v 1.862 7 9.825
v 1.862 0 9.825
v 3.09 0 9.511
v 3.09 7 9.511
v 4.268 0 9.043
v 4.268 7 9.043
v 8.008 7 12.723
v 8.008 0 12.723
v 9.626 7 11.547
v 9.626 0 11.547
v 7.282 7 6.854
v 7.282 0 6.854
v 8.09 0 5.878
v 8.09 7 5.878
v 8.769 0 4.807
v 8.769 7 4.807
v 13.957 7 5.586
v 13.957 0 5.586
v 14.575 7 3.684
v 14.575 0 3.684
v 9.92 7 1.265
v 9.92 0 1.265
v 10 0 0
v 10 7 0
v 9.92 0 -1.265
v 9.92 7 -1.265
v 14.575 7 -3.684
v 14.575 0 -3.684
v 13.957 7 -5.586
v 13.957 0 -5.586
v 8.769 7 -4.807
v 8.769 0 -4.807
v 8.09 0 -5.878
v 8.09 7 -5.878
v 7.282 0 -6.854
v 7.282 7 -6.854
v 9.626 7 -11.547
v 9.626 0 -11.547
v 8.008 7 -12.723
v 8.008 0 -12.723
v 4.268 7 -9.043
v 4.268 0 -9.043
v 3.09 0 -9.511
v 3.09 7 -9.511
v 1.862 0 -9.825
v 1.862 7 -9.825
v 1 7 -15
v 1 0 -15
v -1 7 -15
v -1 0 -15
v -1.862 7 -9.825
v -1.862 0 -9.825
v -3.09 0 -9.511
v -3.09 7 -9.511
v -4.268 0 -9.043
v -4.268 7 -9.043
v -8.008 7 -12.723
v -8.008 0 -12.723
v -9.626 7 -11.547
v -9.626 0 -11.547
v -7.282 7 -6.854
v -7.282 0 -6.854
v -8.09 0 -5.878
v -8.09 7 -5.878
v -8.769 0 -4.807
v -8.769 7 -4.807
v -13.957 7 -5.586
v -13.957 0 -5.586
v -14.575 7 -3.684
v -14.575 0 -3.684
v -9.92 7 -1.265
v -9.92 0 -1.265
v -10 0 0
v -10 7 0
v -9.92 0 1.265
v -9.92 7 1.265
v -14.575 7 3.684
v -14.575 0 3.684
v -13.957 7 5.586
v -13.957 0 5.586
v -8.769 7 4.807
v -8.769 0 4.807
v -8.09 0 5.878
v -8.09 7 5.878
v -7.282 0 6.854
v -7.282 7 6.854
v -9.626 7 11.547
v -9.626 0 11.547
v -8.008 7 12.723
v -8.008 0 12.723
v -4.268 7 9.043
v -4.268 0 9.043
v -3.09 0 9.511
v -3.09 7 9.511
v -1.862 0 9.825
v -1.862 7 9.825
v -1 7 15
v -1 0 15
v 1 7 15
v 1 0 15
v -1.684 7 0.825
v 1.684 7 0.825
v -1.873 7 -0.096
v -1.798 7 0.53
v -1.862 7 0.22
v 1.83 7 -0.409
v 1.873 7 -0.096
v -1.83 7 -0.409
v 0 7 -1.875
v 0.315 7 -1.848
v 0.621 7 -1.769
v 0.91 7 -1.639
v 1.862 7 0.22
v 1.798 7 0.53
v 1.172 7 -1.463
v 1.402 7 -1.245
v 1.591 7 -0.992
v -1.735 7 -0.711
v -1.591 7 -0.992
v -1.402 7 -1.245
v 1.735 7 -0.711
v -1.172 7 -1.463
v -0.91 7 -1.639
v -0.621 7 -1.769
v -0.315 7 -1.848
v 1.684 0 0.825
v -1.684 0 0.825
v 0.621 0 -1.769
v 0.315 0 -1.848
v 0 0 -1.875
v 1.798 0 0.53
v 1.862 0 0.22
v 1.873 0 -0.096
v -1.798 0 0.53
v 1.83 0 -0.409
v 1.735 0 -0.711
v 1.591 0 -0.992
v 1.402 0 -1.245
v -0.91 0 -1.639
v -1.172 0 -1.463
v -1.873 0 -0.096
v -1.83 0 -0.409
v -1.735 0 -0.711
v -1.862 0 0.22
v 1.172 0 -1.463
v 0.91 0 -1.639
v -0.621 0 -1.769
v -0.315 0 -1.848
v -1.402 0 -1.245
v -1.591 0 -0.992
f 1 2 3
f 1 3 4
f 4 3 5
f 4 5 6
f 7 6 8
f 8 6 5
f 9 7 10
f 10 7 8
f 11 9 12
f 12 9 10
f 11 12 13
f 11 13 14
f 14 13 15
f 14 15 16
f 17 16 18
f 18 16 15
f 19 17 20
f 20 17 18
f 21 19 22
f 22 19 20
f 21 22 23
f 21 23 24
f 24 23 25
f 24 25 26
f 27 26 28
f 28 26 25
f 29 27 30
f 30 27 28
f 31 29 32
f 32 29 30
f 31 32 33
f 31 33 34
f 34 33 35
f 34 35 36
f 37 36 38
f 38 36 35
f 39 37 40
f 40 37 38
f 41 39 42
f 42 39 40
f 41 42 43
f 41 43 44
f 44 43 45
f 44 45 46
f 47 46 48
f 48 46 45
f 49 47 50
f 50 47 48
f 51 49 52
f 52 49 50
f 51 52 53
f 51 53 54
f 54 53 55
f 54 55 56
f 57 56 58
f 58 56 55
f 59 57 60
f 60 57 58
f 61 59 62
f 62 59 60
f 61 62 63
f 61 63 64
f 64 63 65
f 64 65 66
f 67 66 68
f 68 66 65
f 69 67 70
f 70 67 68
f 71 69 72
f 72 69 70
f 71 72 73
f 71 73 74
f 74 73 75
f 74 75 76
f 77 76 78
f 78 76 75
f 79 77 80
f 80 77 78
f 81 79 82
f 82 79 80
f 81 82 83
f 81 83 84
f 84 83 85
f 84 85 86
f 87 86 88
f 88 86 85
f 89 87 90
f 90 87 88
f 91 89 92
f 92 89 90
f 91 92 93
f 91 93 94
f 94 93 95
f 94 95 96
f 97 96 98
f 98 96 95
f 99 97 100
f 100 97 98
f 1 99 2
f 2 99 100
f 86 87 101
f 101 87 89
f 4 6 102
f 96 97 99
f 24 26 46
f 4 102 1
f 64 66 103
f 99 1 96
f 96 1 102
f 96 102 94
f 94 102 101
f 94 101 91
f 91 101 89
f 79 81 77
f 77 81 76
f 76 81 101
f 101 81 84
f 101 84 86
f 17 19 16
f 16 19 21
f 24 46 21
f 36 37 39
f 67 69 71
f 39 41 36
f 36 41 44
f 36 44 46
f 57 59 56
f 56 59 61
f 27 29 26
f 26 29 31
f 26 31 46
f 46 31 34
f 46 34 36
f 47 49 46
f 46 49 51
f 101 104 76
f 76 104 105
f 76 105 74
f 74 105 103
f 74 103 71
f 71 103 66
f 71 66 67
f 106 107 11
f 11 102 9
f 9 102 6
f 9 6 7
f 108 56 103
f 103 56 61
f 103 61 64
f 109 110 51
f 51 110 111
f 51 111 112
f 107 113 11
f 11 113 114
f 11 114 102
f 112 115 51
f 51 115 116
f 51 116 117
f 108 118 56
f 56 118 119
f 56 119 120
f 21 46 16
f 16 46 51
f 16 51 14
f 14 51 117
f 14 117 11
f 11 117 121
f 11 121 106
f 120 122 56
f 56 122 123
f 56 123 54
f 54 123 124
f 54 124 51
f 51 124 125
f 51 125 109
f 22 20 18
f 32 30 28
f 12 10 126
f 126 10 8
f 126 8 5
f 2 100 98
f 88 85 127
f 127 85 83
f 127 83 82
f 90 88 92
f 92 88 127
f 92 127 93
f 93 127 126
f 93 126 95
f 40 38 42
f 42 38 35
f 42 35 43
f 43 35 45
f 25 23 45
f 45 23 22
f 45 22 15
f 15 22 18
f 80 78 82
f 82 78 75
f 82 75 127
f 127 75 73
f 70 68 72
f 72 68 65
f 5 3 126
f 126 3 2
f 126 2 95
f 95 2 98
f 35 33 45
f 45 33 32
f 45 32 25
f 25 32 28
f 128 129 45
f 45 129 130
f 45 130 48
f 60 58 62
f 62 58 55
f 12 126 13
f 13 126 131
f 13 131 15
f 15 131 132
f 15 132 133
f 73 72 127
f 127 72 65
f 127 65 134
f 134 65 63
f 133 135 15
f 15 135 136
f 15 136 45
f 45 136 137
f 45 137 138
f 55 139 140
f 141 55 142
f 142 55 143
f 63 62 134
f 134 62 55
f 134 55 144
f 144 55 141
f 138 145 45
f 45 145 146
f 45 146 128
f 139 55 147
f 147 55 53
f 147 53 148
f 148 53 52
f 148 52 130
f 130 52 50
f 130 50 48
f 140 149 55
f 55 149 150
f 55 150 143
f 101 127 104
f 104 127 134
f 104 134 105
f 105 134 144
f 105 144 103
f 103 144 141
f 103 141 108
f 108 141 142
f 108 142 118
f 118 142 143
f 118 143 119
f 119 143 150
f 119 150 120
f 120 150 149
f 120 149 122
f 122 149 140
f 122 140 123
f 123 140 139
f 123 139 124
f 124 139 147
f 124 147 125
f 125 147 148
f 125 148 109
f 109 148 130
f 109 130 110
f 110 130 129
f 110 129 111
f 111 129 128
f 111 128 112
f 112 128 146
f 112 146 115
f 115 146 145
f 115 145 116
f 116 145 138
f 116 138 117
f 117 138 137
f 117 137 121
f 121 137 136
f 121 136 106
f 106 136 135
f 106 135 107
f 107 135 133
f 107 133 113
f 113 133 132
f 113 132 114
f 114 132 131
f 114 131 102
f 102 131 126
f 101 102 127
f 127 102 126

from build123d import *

# Parameters (mm, degrees)
BOSS_EXTRUDE2_DEPTH = 7
CUT_EXTRUDE1_DEPTH  = 7


with BuildPart() as part:
    # Sketch1 → Boss-Extrude2 (new body)
    with BuildSketch(Plane(origin=(0, 0, 0), x_dir=(1, 0, 0), z_dir=(0, 1, 0))):
        with BuildLine():
            Line((-2, 9), (-1.862495894, 9.825024633))
            ThreePointArc((-1.862495894, 9.825024633), (-3.090169944, 9.510565163), (-4.268213752, 9.043359518))
            Line((-4.268213752, 9.043359518), (-3.672033282, 8.456723454))
            Line((-3.672033282, 8.456723454), (-6.908101259, 6.105582445))
            Line((-6.908101259, 6.105582445), (-7.281795413, 6.853864279))
            ThreePointArc((-7.281795413, 6.853864279), (-8.090169944, 5.877852523), (-8.768610817, 4.807438439))
            Line((-8.768610817, 4.807438439), (-7.941474658, 4.683265982))
            Line((-7.941474658, 4.683265982), (-9.177542635, 0.879039917))
            Line((-9.177542635, 0.879039917), (-9.919696584, 1.264760725))
            ThreePointArc((-9.919696584, 1.264760725), (-10, 0), (-9.919696584, -1.264760725))
            Line((-9.919696584, -1.264760725), (-9.177542635, -0.879039917))
            Line((-9.177542635, -0.879039917), (-7.941474658, -4.683265982))
            Line((-7.941474658, -4.683265982), (-8.768610817, -4.807438439))
            ThreePointArc((-8.768610817, -4.807438439), (-8.090169944, -5.877852523), (-7.281795413, -6.853864279))
            Line((-7.281795413, -6.853864279), (-6.908101259, -6.105582445))
            Line((-6.908101259, -6.105582445), (-3.672033282, -8.456723454))
            Line((-3.672033282, -8.456723454), (-4.268213752, -9.043359518))
            ThreePointArc((-4.268213752, -9.043359518), (-3.090169944, -9.510565163), (-1.862495894, -9.825024633))
            Line((-1.862495894, -9.825024633), (-2, -9))
            Line((-2, -9), (2, -9))
            Line((2, -9), (1.862495894, -9.825024633))
            ThreePointArc((1.862495894, -9.825024633), (3.090169944, -9.510565163), (4.268213752, -9.043359518))
            Line((4.268213752, -9.043359518), (3.672033282, -8.456723454))
            Line((3.672033282, -8.456723454), (6.908101259, -6.105582445))
            Line((6.908101259, -6.105582445), (7.281795413, -6.853864279))
            ThreePointArc((7.281795413, -6.853864279), (8.090169944, -5.877852523), (8.768610817, -4.807438439))
            Line((8.768610817, -4.807438439), (7.941474658, -4.683265982))
            Line((7.941474658, -4.683265982), (9.177542635, -0.879039917))
            Line((9.177542635, -0.879039917), (9.919696584, -1.264760725))
            ThreePointArc((9.919696584, -1.264760725), (9.979903953, -0.633653756), (10, 0))
            ThreePointArc((10, 0), (9.979903953, 0.633653756), (9.919696584, 1.264760725))
            Line((9.919696584, 1.264760725), (9.177542635, 0.879039917))
            Line((9.177542635, 0.879039917), (7.941474658, 4.683265982))
            Line((7.941474658, 4.683265982), (8.768610817, 4.807438439))
            ThreePointArc((8.768610817, 4.807438439), (8.090169944, 5.877852523), (7.281795413, 6.853864279))
            Line((7.281795413, 6.853864279), (6.908101259, 6.105582445))
            Line((6.908101259, 6.105582445), (3.672033282, 8.456723454))
            Line((3.672033282, 8.456723454), (4.268213752, 9.043359518))
            ThreePointArc((4.268213752, 9.043359518), (3.090169944, 9.510565163), (1.862495894, 9.825024633))
            Line((1.862495894, 9.825024633), (2, 9))
            Line((2, 9), (-2, 9))
        make_face()
        with BuildLine():
            ThreePointArc((-8.768610817, -4.807438439), (-9.510565163, -3.090169944), (-9.919696584, -1.264760725))
            Line((-9.919696584, -1.264760725), (-14.574864739, -3.684198399))
            Line((-14.574864739, -3.684198399), (-13.95683075, -5.586311432))
            Line((-13.95683075, -5.586311432), (-8.768610817, -4.807438439))
        make_face()
        with BuildLine():
            ThreePointArc((-4.268213752, -9.043359518), (-5.877852523, -8.090169944), (-7.281795413, -6.853864279))
            Line((-7.281795413, -6.853864279), (-9.625795779, -11.547469663))
            Line((-9.625795779, -11.547469663), (-8.00776179, -12.723040168))
            Line((-8.00776179, -12.723040168), (-4.268213752, -9.043359518))
        make_face()
        with BuildLine():
            ThreePointArc((1.862495894, -9.825024633), (0, -10), (-1.862495894, -9.825024633))
            Line((-1.862495894, -9.825024633), (-1, -15))
            Line((-1, -15), (1, -15))
            Line((1, -15), (1.862495894, -9.825024633))
        make_face()
        with BuildLine():
            Line((9.625795779, -11.547469663), (7.281795413, -6.853864279))
            ThreePointArc((7.281795413, -6.853864279), (5.877852523, -8.090169944), (4.268213752, -9.043359518))
            Line((4.268213752, -9.043359518), (8.00776179, -12.723040168))
            Line((8.00776179, -12.723040168), (9.625795779, -11.547469663))
        make_face()
        with BuildLine():
            Line((14.574864739, -3.684198399), (9.919696584, -1.264760725))
            ThreePointArc((9.919696584, -1.264760725), (9.510565163, -3.090169944), (8.768610817, -4.807438439))
            Line((8.768610817, -4.807438439), (13.95683075, -5.586311432))
            Line((13.95683075, -5.586311432), (14.574864739, -3.684198399))
        make_face()
        with BuildLine():
            Line((13.95683075, 5.586311432), (8.768610817, 4.807438439))
            ThreePointArc((8.768610817, 4.807438439), (9.510565163, 3.090169944), (9.919696584, 1.264760725))
            Line((9.919696584, 1.264760725), (14.574864739, 3.684198399))
            Line((14.574864739, 3.684198399), (13.95683075, 5.586311432))
        make_face()
        with BuildLine():
            Line((8.00776179, 12.723040168), (4.268213752, 9.043359518))
            ThreePointArc((4.268213752, 9.043359518), (5.877852523, 8.090169944), (7.281795413, 6.853864279))
            Line((7.281795413, 6.853864279), (9.625795779, 11.547469663))
            Line((9.625795779, 11.547469663), (8.00776179, 12.723040168))
        make_face()
        with BuildLine():
            Line((1, 15), (-1, 15))
            Line((-1, 15), (-1.862495894, 9.825024633))
            ThreePointArc((-1.862495894, 9.825024633), (0, 10), (1.862495894, 9.825024633))
            Line((1.862495894, 9.825024633), (1, 15))
        make_face()
        with BuildLine():
            ThreePointArc((-7.281795413, 6.853864279), (-5.877852523, 8.090169944), (-4.268213752, 9.043359518))
            Line((-4.268213752, 9.043359518), (-8.00776179, 12.723040168))
            Line((-8.00776179, 12.723040168), (-9.625795779, 11.547469663))
            Line((-9.625795779, 11.547469663), (-7.281795413, 6.853864279))
        make_face()
        with BuildLine():
            ThreePointArc((-9.919696584, 1.264760725), (-9.510565163, 3.090169944), (-8.768610817, 4.807438439))
            Line((-8.768610817, 4.807438439), (-13.95683075, 5.586311432))
            Line((-13.95683075, 5.586311432), (-14.574864739, 3.684198399))
            Line((-14.574864739, 3.684198399), (-9.919696584, 1.264760725))
        make_face()
        with BuildLine():
            Line((-7.941474658, 4.683265982), (-8.768610817, 4.807438439))
            ThreePointArc((-8.768610817, 4.807438439), (-9.510565163, 3.090169944), (-9.919696584, 1.264760725))
            Line((-9.919696584, 1.264760725), (-9.177542635, 0.879039917))
            Line((-9.177542635, 0.879039917), (-7.941474658, 4.683265982))
        make_face()
        with BuildLine():
            Line((-2, -9), (-1.862495894, -9.825024633))
            ThreePointArc((-1.862495894, -9.825024633), (0, -10), (1.862495894, -9.825024633))
            Line((1.862495894, -9.825024633), (2, -9))
            Line((2, -9), (-2, -9))
        make_face()
        with BuildLine():
            ThreePointArc((4.268213752, -9.043359518), (5.877852523, -8.090169944), (7.281795413, -6.853864279))
            Line((7.281795413, -6.853864279), (6.908101259, -6.105582445))
            Line((6.908101259, -6.105582445), (3.672033282, -8.456723454))
            Line((3.672033282, -8.456723454), (4.268213752, -9.043359518))
        make_face()
        with BuildLine():
            Line((-6.908101259, -6.105582445), (-7.281795413, -6.853864279))
            ThreePointArc((-7.281795413, -6.853864279), (-5.877852523, -8.090169944), (-4.268213752, -9.043359518))
            Line((-4.268213752, -9.043359518), (-3.672033282, -8.456723454))
            Line((-3.672033282, -8.456723454), (-6.908101259, -6.105582445))
        make_face()
        with BuildLine():
            Line((-9.177542635, -0.879039917), (-9.919696584, -1.264760725))
            ThreePointArc((-9.919696584, -1.264760725), (-9.510565163, -3.090169944), (-8.768610817, -4.807438439))
            Line((-8.768610817, -4.807438439), (-7.941474658, -4.683265982))
            Line((-7.941474658, -4.683265982), (-9.177542635, -0.879039917))
        make_face()
        with BuildLine():
            Line((-3.672033282, 8.456723454), (-4.268213752, 9.043359518))
            ThreePointArc((-4.268213752, 9.043359518), (-5.877852523, 8.090169944), (-7.281795413, 6.853864279))
            Line((-7.281795413, 6.853864279), (-6.908101259, 6.105582445))
            Line((-6.908101259, 6.105582445), (-3.672033282, 8.456723454))
        make_face()
        with BuildLine():
            ThreePointArc((1.862495894, 9.825024633), (0, 10), (-1.862495894, 9.825024633))
            Line((-1.862495894, 9.825024633), (-2, 9))
            Line((-2, 9), (2, 9))
            Line((2, 9), (1.862495894, 9.825024633))
        make_face()
        with BuildLine():
            ThreePointArc((7.281795413, 6.853864279), (5.877852523, 8.090169944), (4.268213752, 9.043359518))
            Line((4.268213752, 9.043359518), (3.672033282, 8.456723454))
            Line((3.672033282, 8.456723454), (6.908101259, 6.105582445))
            Line((6.908101259, 6.105582445), (7.281795413, 6.853864279))
        make_face()
        with BuildLine():
            ThreePointArc((9.919696584, 1.264760725), (9.510565163, 3.090169944), (8.768610817, 4.807438439))
            Line((8.768610817, 4.807438439), (7.941474658, 4.683265982))
            Line((7.941474658, 4.683265982), (9.177542635, 0.879039917))
            Line((9.177542635, 0.879039917), (9.919696584, 1.264760725))
        make_face()
        with BuildLine():
            ThreePointArc((8.768610817, -4.807438439), (9.510565163, -3.090169944), (9.919696584, -1.264760725))
            Line((9.919696584, -1.264760725), (9.177542635, -0.879039917))
            Line((9.177542635, -0.879039917), (7.941474658, -4.683265982))
            Line((7.941474658, -4.683265982), (8.768610817, -4.807438439))
        make_face()
    extrude(amount=BOSS_EXTRUDE2_DEPTH)

    # Sketch3 → Cut-Extrude1 (cut)
    with BuildSketch(Plane.XZ):
        with BuildLine():
            Line((-1.683745824, 0.825), (1.683745824, 0.825))
            ThreePointArc((1.683745824, 0.825), (0, -1.875), (-1.683745824, 0.825))
        make_face()
    extrude(amount=-CUT_EXTRUDE1_DEPTH, mode=Mode.SUBTRACT)


solid = part.part
